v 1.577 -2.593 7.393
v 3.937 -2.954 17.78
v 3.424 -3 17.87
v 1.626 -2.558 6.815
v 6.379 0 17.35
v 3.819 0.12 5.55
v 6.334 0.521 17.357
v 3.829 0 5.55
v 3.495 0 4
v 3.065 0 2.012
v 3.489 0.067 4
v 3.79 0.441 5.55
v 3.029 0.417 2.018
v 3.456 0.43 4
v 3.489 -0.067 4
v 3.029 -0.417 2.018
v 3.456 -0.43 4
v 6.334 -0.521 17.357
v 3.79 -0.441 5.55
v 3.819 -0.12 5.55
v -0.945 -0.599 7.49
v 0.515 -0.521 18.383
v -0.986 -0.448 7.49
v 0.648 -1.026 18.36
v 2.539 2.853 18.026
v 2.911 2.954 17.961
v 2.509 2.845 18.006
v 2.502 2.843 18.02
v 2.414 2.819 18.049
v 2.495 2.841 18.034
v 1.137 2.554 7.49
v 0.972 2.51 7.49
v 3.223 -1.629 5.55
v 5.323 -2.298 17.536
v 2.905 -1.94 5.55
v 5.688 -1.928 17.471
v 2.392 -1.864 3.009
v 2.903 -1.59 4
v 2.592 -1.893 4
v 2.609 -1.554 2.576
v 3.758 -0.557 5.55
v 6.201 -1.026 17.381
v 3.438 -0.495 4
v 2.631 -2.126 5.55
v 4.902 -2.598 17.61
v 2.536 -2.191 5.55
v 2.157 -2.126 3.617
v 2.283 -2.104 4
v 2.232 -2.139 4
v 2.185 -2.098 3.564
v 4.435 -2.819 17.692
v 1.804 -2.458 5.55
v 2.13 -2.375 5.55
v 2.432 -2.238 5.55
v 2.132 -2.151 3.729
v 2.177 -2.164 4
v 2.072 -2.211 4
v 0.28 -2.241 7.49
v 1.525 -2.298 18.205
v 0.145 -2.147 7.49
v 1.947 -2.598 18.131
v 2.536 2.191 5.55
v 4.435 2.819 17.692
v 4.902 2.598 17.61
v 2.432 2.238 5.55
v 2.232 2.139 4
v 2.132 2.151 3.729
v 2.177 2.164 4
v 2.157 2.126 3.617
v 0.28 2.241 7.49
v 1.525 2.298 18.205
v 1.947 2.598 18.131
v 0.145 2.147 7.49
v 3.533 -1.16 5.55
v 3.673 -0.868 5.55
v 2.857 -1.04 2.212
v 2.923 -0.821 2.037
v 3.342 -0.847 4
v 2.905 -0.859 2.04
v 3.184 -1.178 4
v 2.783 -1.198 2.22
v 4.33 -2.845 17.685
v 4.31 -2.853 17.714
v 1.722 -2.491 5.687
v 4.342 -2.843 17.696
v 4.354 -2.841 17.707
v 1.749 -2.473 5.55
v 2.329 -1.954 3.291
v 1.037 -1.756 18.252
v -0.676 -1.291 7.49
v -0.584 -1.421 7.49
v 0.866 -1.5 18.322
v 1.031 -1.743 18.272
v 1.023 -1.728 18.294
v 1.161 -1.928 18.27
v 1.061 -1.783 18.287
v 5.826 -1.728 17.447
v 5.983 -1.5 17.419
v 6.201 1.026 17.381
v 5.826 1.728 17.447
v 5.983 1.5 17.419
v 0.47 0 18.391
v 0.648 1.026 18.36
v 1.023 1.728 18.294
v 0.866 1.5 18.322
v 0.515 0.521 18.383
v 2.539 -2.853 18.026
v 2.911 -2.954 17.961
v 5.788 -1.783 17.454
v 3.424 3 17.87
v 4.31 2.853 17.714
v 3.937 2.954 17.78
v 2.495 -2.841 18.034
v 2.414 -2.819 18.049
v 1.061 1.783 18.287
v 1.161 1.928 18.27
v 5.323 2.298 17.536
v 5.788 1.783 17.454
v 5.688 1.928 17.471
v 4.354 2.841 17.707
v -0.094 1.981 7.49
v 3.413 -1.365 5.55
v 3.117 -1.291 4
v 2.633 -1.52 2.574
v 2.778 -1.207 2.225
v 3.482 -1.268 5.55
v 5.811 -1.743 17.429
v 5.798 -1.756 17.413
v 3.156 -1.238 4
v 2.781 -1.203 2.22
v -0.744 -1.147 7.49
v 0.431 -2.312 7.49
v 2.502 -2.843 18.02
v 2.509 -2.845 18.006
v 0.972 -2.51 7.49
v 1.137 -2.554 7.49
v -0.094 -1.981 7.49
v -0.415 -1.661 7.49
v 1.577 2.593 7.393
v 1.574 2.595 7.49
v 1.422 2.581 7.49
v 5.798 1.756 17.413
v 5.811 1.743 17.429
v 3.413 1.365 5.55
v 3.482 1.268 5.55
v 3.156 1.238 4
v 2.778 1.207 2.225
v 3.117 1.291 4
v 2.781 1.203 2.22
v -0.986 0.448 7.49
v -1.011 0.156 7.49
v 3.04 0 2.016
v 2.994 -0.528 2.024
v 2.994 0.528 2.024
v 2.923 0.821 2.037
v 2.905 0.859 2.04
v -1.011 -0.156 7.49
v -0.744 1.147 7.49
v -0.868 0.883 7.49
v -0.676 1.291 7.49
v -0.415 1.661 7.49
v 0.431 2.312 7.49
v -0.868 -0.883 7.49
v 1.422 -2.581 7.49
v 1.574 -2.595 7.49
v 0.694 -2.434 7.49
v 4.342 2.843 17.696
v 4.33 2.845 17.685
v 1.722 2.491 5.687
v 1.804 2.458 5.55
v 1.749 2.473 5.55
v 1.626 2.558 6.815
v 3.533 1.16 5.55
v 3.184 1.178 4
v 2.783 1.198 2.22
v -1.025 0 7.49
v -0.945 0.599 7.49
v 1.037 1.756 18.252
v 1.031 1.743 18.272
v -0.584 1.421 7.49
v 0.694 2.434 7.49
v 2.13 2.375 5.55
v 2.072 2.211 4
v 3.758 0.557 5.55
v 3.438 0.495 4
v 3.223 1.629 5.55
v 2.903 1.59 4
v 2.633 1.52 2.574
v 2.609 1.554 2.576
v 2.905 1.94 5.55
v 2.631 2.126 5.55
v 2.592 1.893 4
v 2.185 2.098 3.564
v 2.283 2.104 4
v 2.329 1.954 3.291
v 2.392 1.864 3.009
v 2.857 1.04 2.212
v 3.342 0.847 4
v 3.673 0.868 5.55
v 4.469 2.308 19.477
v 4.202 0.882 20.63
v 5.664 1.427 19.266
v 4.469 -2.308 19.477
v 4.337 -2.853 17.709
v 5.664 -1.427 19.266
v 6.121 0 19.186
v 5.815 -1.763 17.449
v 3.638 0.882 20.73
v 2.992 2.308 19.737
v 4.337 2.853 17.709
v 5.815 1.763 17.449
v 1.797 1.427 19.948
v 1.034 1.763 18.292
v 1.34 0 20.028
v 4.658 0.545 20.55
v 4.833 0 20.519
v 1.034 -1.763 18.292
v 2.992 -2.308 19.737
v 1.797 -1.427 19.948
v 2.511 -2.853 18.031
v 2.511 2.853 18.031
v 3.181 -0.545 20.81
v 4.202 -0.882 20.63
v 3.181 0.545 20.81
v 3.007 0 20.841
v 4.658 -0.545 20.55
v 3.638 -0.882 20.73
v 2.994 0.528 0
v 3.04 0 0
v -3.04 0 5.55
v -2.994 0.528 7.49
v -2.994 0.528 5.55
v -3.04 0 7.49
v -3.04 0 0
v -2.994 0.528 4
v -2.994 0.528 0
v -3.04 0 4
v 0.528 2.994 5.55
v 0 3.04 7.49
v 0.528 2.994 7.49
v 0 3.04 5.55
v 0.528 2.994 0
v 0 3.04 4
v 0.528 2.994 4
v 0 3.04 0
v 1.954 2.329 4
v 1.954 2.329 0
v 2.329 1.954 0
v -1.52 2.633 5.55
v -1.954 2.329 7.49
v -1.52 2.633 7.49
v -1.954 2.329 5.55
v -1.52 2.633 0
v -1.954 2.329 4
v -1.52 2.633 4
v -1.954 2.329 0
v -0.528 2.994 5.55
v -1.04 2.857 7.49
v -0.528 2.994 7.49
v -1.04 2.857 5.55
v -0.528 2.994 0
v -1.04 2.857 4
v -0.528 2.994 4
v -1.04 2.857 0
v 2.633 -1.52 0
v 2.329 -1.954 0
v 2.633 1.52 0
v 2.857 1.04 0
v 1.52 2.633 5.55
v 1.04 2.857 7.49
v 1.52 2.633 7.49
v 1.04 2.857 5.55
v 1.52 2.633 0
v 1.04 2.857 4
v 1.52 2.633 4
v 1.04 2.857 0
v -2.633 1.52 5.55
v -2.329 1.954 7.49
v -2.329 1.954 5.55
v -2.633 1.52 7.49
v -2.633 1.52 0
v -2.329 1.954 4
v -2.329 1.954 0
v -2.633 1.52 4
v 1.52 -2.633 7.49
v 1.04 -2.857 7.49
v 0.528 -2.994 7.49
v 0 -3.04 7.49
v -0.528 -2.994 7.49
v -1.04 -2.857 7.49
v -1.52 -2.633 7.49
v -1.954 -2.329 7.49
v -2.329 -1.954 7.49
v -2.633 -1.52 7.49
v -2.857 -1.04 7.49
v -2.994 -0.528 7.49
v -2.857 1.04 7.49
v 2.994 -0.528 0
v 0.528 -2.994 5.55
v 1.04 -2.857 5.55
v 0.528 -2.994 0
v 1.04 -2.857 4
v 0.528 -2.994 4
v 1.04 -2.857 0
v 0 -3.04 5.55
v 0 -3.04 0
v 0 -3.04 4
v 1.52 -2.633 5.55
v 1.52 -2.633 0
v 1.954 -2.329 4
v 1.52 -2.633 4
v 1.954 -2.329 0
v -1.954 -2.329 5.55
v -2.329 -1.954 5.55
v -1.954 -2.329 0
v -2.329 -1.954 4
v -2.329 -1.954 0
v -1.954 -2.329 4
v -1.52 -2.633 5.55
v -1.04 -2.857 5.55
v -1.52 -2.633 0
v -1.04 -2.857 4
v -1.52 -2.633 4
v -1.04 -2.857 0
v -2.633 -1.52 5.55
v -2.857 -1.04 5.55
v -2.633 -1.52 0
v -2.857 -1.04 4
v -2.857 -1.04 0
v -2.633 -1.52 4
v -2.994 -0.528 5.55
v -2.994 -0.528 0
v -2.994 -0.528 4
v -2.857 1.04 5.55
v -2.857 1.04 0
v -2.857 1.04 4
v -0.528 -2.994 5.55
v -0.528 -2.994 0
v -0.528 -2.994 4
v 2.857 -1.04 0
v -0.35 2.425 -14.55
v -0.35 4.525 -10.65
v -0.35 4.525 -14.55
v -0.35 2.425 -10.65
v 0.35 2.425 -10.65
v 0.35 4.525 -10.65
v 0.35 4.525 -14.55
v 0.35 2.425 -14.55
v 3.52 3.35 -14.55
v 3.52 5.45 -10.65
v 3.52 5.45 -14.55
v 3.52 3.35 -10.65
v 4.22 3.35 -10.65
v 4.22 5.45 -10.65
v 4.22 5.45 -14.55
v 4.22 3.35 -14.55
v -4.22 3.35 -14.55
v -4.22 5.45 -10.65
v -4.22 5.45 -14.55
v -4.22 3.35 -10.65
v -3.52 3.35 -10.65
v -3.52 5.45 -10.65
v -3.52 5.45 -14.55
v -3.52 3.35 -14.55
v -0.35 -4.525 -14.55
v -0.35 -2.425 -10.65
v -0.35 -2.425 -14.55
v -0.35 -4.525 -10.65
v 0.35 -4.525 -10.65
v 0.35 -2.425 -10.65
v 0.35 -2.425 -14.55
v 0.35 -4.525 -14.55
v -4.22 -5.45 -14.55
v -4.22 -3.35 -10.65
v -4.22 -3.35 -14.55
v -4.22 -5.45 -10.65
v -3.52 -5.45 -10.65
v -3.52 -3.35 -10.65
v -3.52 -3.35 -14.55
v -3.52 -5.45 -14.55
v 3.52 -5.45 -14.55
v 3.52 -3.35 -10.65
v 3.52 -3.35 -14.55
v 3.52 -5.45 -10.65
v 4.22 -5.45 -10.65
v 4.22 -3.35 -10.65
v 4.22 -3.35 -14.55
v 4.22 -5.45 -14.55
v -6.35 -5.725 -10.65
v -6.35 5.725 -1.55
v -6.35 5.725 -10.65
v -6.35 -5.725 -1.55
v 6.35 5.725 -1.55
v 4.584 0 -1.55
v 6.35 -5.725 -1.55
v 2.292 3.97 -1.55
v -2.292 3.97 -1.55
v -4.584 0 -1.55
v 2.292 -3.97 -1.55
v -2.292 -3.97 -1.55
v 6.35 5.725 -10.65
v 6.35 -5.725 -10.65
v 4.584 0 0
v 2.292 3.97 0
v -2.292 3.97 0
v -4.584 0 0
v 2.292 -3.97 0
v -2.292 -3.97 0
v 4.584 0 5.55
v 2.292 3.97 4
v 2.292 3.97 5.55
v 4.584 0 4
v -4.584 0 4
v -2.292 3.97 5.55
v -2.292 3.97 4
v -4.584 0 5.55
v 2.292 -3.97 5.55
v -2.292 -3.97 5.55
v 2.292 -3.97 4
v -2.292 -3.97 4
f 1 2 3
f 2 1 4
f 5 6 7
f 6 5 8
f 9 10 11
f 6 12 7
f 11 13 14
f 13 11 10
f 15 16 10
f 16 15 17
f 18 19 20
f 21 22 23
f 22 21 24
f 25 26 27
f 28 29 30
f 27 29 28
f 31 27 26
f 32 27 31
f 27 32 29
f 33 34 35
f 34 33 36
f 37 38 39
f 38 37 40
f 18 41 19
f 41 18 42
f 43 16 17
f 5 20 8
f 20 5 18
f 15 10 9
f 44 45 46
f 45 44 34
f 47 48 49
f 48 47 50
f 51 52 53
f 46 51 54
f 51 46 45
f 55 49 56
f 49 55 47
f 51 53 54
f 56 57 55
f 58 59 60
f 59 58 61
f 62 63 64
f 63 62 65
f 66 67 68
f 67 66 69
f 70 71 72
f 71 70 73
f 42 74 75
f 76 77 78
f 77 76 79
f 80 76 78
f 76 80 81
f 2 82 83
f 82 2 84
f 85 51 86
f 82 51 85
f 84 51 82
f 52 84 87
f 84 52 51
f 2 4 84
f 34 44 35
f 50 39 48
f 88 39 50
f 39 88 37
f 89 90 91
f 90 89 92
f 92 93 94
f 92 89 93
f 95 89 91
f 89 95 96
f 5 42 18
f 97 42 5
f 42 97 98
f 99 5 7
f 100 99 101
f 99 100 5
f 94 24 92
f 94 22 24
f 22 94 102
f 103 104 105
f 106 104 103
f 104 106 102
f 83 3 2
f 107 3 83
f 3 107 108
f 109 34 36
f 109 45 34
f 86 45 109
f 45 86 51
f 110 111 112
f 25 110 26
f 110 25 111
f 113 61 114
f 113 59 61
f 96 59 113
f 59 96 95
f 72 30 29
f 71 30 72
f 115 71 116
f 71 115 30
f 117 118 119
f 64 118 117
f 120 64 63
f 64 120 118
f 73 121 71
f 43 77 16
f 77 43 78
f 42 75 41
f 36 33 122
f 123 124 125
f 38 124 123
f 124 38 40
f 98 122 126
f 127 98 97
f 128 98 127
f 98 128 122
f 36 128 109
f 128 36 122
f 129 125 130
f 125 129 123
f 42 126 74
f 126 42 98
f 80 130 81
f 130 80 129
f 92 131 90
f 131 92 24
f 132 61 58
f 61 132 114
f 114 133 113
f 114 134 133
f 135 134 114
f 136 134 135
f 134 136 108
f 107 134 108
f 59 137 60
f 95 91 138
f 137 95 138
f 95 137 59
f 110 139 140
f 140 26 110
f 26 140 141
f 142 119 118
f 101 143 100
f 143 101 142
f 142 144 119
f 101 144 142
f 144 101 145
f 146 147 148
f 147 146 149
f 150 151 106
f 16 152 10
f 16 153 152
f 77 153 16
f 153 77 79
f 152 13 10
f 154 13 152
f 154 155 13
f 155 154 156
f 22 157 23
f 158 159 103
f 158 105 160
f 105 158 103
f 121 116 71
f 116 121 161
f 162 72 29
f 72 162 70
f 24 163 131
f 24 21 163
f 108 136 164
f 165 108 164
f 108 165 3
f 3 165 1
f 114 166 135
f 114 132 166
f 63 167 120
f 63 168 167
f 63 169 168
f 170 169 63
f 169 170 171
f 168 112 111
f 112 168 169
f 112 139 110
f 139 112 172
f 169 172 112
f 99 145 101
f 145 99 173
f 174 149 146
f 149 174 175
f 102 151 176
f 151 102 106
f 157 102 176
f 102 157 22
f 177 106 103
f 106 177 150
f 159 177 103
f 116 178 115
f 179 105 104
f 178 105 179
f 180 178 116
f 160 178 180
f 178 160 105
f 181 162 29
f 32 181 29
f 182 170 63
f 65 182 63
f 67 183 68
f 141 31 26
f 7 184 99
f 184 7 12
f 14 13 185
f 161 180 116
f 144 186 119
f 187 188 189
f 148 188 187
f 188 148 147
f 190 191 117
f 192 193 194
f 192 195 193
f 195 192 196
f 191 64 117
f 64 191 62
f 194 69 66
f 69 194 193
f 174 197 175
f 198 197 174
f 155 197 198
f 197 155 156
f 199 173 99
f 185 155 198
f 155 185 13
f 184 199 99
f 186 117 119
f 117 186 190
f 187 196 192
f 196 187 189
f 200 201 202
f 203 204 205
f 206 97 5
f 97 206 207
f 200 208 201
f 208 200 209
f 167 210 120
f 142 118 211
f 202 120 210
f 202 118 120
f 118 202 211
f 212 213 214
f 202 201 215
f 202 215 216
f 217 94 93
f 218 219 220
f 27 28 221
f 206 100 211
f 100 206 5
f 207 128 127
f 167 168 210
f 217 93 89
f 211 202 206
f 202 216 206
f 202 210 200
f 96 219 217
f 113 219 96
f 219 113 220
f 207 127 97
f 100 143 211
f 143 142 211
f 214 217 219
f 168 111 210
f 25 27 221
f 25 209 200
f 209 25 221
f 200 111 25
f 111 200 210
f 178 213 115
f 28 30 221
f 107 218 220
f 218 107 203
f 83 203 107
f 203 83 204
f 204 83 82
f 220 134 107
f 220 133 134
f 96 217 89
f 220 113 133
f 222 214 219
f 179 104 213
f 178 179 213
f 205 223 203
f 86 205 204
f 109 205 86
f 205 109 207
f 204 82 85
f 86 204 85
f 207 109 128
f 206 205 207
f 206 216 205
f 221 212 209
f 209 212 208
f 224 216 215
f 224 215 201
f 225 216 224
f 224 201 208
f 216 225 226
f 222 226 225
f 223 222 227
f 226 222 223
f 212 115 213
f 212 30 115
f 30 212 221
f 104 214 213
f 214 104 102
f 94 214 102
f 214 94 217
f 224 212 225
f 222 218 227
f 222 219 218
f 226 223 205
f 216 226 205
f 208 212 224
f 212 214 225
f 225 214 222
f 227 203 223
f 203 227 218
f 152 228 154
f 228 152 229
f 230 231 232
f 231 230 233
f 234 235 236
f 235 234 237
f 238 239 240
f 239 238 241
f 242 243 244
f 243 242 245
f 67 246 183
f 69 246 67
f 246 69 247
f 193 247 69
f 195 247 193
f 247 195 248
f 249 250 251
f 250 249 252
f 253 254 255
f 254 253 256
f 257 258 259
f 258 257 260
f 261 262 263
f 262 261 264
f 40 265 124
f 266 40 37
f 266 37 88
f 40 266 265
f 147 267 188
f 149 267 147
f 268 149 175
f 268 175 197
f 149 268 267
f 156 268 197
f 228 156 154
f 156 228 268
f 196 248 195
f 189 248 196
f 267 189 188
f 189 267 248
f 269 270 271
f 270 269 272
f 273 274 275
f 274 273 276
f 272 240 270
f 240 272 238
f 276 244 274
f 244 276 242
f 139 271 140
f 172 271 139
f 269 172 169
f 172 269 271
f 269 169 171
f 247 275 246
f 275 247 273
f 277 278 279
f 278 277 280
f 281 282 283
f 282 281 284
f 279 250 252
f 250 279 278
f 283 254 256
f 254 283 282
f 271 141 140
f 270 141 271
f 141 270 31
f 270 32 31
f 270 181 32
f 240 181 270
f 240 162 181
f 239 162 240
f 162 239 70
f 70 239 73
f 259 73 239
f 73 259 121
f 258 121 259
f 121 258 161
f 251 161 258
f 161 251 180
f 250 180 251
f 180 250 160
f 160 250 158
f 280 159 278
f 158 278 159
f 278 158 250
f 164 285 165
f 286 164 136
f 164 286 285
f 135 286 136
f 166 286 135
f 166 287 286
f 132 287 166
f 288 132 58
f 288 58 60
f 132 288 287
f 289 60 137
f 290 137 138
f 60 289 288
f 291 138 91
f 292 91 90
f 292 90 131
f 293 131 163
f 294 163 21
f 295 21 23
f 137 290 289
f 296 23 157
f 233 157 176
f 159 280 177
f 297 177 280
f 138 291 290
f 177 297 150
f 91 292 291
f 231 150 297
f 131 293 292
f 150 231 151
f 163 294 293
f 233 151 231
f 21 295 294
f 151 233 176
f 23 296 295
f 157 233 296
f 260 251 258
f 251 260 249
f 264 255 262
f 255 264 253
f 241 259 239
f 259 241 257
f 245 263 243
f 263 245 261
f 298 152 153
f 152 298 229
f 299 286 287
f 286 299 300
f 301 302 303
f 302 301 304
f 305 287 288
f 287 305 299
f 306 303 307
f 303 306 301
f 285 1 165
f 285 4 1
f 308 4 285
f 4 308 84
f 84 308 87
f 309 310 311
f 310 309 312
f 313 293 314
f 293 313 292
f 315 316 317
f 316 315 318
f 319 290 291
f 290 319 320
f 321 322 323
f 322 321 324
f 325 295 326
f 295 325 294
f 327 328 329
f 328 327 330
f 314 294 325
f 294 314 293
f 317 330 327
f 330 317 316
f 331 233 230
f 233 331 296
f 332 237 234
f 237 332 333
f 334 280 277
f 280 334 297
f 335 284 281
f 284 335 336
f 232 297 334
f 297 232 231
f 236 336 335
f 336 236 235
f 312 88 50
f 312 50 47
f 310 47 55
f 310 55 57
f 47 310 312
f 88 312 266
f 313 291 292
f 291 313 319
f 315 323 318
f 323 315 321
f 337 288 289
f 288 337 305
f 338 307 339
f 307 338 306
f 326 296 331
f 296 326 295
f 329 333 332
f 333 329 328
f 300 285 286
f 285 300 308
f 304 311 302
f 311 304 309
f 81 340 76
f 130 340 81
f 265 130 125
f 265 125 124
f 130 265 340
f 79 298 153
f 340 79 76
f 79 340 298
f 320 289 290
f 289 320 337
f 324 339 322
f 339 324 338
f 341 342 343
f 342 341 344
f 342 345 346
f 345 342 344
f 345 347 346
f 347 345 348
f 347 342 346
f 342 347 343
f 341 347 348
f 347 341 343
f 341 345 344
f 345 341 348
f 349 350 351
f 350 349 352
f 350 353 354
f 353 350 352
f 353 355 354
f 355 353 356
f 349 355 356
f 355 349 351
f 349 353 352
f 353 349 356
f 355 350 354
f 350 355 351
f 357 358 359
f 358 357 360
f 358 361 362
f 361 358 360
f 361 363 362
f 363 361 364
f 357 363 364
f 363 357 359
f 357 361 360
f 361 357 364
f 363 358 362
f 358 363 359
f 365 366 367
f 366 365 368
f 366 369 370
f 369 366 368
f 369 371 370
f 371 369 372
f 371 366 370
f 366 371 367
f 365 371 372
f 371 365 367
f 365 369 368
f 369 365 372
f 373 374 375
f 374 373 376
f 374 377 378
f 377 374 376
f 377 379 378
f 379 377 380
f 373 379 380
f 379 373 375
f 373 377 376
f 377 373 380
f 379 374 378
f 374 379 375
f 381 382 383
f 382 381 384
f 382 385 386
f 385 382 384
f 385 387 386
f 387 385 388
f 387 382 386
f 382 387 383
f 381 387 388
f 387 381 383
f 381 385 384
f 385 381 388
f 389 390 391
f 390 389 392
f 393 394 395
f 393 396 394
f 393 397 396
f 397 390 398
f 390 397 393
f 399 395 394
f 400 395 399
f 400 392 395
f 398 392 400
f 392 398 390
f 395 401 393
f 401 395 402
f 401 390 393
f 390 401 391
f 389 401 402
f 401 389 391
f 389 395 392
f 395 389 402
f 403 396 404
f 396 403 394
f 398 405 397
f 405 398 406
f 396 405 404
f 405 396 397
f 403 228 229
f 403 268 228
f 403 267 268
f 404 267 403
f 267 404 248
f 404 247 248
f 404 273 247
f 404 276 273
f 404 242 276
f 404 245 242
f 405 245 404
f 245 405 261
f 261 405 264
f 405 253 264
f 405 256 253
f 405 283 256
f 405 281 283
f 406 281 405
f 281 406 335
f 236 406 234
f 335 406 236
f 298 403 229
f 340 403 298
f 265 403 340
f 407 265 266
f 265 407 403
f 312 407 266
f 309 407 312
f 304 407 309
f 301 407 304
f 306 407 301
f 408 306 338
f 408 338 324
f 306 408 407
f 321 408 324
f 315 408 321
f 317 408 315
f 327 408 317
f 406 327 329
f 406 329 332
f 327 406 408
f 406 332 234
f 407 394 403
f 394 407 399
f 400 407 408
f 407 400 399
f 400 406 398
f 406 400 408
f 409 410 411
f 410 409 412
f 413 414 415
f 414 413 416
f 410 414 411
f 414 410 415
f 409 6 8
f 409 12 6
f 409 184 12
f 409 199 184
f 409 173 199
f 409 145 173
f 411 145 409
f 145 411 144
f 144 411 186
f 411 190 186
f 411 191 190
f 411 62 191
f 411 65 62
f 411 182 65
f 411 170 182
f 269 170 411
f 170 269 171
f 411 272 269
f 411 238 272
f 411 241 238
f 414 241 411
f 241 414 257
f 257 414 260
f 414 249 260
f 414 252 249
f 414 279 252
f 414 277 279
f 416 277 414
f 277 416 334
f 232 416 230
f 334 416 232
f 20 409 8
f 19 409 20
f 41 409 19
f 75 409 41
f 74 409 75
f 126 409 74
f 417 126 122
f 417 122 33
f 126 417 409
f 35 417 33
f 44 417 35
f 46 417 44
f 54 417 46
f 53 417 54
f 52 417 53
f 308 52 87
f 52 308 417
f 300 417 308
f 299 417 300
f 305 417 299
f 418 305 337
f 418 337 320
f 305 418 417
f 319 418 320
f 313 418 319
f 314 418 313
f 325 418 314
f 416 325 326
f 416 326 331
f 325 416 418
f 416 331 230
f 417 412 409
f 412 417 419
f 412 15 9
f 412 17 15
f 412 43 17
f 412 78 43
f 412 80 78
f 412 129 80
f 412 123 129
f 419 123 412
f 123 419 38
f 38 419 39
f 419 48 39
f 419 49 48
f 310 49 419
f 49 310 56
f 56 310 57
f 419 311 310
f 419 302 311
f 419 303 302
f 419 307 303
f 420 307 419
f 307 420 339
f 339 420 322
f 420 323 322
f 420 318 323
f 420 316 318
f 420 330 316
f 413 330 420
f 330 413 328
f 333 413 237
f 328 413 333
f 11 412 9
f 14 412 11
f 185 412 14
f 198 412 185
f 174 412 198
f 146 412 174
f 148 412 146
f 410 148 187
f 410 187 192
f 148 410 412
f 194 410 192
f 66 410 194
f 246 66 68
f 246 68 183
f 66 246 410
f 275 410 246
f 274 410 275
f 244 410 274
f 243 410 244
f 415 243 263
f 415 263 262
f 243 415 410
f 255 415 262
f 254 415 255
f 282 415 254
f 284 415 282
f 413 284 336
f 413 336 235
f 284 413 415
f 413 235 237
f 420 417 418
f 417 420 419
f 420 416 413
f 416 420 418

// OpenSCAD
/*
  Toggle Switch Library

  Aaron Ciuffo - aaron . ciuffo 2 gmail com

  2014 Nov 15

  Paramaters:
    nut1H - height of nut 1 on screw 
    nut2H - height of nut 2 OVER nut 1
    cener = body/nut


*/

/*[Base Dimensions]*/
//bX=29.5;
bX=12.7;
//bY=18.4;
bY=11.45;
//bZ=17.35;
bZ=9.1;

/*[Tabs]*/
//Dimensions
//tabX=4.3;
tabX=0.7;
//tabY=0.5;
tabY=2.1;
//tabZ=6;
tabZ=3.9;

//position of center terminals
centerX=0;
//centerY=14.7/2;
centerY=6.95/2;
//endX=21/2;
endX=3.87;
endY=8.8/2;


/*[Screw Mount]*/
//screwDia=11.8;
screwDia=6.08;
//screwZ=10;
screwZ=9.04;

/*[Toggle Dimensions]*/
//tgDia2=4.8; //diamter at top
tgDia2=3.0;
//tgDia1=2; //diameter at bottom
tgDia1=2.4;
//tgZ=13.4;
tgZ=10.68;
swAngle=10;

/*[Mounting Nut]*/
//nutFlat=14; //distance across flats
nutFlat=7.94;
//nutThick=2; //thickness
nutThick=1.55;

module body() {
  translate([]) 
    cube([bX, bY, bZ], center=true);
}

module toggle() {
  union() {
    cylinder(h=screwZ, r=screwDia/2, $fn=36);
    rotate([0, swAngle, 0])
    union() {
      translate([0, 0, screwZ-5]) rotate([0, 0, 0])
        cylinder(h=tgZ+5, r1=tgDia1, r2=tgDia2, $fn=36);
      translate([0, 0, screwZ+tgZ])
        sphere(r=tgDia2, center=true);
    }

  }
}

module nut() {
  nutRad=nutFlat/2*1/cos(30);
  cylinder(r=nutRad, h=nutThick, $fn=6);
}


module tab() {
  cube([tabX, tabY, tabZ], center=true);
}

module placeTabs(mir=1) {
  //center terminal
  translate([mir*centerX, mir*centerY, 0])
    tab();
  translate([mir*endX, mir*endY, 0])
    tab();
  translate([-1*mir*endX, mir*endY, 0])
    tab();
}

module assemble(nut1H=0, nut2H=nutThick) {
  union() {
    color("gray") body();
    translate([0, 0, bZ/2])
      color("blue") toggle();
    translate([0, 0, -bZ/2-tabZ/2])
      color("silver") placeTabs();
    translate([0, 0, -bZ/2-tabZ/2])
      color("silver") placeTabs(mir=-1);
    translate([0, 0, bZ/2+nut1H])
      color("red") nut();
    translate([0, 0, bZ/2+nut2H+nutThick
    ])
      color("yellow") nut();

  }

}

module switch(nut1H=0, nut2H=nutThick, center="body") {
  if (center=="nut") {
    translate([0, 0, -bZ/2-nut1H-nutThick])
      assemble(nut1H, nut2H);
    
  } else {
    assemble(nut1H, nut2H);
  }
}


switch(nut1H=0, nut2H=4, center="nut");
